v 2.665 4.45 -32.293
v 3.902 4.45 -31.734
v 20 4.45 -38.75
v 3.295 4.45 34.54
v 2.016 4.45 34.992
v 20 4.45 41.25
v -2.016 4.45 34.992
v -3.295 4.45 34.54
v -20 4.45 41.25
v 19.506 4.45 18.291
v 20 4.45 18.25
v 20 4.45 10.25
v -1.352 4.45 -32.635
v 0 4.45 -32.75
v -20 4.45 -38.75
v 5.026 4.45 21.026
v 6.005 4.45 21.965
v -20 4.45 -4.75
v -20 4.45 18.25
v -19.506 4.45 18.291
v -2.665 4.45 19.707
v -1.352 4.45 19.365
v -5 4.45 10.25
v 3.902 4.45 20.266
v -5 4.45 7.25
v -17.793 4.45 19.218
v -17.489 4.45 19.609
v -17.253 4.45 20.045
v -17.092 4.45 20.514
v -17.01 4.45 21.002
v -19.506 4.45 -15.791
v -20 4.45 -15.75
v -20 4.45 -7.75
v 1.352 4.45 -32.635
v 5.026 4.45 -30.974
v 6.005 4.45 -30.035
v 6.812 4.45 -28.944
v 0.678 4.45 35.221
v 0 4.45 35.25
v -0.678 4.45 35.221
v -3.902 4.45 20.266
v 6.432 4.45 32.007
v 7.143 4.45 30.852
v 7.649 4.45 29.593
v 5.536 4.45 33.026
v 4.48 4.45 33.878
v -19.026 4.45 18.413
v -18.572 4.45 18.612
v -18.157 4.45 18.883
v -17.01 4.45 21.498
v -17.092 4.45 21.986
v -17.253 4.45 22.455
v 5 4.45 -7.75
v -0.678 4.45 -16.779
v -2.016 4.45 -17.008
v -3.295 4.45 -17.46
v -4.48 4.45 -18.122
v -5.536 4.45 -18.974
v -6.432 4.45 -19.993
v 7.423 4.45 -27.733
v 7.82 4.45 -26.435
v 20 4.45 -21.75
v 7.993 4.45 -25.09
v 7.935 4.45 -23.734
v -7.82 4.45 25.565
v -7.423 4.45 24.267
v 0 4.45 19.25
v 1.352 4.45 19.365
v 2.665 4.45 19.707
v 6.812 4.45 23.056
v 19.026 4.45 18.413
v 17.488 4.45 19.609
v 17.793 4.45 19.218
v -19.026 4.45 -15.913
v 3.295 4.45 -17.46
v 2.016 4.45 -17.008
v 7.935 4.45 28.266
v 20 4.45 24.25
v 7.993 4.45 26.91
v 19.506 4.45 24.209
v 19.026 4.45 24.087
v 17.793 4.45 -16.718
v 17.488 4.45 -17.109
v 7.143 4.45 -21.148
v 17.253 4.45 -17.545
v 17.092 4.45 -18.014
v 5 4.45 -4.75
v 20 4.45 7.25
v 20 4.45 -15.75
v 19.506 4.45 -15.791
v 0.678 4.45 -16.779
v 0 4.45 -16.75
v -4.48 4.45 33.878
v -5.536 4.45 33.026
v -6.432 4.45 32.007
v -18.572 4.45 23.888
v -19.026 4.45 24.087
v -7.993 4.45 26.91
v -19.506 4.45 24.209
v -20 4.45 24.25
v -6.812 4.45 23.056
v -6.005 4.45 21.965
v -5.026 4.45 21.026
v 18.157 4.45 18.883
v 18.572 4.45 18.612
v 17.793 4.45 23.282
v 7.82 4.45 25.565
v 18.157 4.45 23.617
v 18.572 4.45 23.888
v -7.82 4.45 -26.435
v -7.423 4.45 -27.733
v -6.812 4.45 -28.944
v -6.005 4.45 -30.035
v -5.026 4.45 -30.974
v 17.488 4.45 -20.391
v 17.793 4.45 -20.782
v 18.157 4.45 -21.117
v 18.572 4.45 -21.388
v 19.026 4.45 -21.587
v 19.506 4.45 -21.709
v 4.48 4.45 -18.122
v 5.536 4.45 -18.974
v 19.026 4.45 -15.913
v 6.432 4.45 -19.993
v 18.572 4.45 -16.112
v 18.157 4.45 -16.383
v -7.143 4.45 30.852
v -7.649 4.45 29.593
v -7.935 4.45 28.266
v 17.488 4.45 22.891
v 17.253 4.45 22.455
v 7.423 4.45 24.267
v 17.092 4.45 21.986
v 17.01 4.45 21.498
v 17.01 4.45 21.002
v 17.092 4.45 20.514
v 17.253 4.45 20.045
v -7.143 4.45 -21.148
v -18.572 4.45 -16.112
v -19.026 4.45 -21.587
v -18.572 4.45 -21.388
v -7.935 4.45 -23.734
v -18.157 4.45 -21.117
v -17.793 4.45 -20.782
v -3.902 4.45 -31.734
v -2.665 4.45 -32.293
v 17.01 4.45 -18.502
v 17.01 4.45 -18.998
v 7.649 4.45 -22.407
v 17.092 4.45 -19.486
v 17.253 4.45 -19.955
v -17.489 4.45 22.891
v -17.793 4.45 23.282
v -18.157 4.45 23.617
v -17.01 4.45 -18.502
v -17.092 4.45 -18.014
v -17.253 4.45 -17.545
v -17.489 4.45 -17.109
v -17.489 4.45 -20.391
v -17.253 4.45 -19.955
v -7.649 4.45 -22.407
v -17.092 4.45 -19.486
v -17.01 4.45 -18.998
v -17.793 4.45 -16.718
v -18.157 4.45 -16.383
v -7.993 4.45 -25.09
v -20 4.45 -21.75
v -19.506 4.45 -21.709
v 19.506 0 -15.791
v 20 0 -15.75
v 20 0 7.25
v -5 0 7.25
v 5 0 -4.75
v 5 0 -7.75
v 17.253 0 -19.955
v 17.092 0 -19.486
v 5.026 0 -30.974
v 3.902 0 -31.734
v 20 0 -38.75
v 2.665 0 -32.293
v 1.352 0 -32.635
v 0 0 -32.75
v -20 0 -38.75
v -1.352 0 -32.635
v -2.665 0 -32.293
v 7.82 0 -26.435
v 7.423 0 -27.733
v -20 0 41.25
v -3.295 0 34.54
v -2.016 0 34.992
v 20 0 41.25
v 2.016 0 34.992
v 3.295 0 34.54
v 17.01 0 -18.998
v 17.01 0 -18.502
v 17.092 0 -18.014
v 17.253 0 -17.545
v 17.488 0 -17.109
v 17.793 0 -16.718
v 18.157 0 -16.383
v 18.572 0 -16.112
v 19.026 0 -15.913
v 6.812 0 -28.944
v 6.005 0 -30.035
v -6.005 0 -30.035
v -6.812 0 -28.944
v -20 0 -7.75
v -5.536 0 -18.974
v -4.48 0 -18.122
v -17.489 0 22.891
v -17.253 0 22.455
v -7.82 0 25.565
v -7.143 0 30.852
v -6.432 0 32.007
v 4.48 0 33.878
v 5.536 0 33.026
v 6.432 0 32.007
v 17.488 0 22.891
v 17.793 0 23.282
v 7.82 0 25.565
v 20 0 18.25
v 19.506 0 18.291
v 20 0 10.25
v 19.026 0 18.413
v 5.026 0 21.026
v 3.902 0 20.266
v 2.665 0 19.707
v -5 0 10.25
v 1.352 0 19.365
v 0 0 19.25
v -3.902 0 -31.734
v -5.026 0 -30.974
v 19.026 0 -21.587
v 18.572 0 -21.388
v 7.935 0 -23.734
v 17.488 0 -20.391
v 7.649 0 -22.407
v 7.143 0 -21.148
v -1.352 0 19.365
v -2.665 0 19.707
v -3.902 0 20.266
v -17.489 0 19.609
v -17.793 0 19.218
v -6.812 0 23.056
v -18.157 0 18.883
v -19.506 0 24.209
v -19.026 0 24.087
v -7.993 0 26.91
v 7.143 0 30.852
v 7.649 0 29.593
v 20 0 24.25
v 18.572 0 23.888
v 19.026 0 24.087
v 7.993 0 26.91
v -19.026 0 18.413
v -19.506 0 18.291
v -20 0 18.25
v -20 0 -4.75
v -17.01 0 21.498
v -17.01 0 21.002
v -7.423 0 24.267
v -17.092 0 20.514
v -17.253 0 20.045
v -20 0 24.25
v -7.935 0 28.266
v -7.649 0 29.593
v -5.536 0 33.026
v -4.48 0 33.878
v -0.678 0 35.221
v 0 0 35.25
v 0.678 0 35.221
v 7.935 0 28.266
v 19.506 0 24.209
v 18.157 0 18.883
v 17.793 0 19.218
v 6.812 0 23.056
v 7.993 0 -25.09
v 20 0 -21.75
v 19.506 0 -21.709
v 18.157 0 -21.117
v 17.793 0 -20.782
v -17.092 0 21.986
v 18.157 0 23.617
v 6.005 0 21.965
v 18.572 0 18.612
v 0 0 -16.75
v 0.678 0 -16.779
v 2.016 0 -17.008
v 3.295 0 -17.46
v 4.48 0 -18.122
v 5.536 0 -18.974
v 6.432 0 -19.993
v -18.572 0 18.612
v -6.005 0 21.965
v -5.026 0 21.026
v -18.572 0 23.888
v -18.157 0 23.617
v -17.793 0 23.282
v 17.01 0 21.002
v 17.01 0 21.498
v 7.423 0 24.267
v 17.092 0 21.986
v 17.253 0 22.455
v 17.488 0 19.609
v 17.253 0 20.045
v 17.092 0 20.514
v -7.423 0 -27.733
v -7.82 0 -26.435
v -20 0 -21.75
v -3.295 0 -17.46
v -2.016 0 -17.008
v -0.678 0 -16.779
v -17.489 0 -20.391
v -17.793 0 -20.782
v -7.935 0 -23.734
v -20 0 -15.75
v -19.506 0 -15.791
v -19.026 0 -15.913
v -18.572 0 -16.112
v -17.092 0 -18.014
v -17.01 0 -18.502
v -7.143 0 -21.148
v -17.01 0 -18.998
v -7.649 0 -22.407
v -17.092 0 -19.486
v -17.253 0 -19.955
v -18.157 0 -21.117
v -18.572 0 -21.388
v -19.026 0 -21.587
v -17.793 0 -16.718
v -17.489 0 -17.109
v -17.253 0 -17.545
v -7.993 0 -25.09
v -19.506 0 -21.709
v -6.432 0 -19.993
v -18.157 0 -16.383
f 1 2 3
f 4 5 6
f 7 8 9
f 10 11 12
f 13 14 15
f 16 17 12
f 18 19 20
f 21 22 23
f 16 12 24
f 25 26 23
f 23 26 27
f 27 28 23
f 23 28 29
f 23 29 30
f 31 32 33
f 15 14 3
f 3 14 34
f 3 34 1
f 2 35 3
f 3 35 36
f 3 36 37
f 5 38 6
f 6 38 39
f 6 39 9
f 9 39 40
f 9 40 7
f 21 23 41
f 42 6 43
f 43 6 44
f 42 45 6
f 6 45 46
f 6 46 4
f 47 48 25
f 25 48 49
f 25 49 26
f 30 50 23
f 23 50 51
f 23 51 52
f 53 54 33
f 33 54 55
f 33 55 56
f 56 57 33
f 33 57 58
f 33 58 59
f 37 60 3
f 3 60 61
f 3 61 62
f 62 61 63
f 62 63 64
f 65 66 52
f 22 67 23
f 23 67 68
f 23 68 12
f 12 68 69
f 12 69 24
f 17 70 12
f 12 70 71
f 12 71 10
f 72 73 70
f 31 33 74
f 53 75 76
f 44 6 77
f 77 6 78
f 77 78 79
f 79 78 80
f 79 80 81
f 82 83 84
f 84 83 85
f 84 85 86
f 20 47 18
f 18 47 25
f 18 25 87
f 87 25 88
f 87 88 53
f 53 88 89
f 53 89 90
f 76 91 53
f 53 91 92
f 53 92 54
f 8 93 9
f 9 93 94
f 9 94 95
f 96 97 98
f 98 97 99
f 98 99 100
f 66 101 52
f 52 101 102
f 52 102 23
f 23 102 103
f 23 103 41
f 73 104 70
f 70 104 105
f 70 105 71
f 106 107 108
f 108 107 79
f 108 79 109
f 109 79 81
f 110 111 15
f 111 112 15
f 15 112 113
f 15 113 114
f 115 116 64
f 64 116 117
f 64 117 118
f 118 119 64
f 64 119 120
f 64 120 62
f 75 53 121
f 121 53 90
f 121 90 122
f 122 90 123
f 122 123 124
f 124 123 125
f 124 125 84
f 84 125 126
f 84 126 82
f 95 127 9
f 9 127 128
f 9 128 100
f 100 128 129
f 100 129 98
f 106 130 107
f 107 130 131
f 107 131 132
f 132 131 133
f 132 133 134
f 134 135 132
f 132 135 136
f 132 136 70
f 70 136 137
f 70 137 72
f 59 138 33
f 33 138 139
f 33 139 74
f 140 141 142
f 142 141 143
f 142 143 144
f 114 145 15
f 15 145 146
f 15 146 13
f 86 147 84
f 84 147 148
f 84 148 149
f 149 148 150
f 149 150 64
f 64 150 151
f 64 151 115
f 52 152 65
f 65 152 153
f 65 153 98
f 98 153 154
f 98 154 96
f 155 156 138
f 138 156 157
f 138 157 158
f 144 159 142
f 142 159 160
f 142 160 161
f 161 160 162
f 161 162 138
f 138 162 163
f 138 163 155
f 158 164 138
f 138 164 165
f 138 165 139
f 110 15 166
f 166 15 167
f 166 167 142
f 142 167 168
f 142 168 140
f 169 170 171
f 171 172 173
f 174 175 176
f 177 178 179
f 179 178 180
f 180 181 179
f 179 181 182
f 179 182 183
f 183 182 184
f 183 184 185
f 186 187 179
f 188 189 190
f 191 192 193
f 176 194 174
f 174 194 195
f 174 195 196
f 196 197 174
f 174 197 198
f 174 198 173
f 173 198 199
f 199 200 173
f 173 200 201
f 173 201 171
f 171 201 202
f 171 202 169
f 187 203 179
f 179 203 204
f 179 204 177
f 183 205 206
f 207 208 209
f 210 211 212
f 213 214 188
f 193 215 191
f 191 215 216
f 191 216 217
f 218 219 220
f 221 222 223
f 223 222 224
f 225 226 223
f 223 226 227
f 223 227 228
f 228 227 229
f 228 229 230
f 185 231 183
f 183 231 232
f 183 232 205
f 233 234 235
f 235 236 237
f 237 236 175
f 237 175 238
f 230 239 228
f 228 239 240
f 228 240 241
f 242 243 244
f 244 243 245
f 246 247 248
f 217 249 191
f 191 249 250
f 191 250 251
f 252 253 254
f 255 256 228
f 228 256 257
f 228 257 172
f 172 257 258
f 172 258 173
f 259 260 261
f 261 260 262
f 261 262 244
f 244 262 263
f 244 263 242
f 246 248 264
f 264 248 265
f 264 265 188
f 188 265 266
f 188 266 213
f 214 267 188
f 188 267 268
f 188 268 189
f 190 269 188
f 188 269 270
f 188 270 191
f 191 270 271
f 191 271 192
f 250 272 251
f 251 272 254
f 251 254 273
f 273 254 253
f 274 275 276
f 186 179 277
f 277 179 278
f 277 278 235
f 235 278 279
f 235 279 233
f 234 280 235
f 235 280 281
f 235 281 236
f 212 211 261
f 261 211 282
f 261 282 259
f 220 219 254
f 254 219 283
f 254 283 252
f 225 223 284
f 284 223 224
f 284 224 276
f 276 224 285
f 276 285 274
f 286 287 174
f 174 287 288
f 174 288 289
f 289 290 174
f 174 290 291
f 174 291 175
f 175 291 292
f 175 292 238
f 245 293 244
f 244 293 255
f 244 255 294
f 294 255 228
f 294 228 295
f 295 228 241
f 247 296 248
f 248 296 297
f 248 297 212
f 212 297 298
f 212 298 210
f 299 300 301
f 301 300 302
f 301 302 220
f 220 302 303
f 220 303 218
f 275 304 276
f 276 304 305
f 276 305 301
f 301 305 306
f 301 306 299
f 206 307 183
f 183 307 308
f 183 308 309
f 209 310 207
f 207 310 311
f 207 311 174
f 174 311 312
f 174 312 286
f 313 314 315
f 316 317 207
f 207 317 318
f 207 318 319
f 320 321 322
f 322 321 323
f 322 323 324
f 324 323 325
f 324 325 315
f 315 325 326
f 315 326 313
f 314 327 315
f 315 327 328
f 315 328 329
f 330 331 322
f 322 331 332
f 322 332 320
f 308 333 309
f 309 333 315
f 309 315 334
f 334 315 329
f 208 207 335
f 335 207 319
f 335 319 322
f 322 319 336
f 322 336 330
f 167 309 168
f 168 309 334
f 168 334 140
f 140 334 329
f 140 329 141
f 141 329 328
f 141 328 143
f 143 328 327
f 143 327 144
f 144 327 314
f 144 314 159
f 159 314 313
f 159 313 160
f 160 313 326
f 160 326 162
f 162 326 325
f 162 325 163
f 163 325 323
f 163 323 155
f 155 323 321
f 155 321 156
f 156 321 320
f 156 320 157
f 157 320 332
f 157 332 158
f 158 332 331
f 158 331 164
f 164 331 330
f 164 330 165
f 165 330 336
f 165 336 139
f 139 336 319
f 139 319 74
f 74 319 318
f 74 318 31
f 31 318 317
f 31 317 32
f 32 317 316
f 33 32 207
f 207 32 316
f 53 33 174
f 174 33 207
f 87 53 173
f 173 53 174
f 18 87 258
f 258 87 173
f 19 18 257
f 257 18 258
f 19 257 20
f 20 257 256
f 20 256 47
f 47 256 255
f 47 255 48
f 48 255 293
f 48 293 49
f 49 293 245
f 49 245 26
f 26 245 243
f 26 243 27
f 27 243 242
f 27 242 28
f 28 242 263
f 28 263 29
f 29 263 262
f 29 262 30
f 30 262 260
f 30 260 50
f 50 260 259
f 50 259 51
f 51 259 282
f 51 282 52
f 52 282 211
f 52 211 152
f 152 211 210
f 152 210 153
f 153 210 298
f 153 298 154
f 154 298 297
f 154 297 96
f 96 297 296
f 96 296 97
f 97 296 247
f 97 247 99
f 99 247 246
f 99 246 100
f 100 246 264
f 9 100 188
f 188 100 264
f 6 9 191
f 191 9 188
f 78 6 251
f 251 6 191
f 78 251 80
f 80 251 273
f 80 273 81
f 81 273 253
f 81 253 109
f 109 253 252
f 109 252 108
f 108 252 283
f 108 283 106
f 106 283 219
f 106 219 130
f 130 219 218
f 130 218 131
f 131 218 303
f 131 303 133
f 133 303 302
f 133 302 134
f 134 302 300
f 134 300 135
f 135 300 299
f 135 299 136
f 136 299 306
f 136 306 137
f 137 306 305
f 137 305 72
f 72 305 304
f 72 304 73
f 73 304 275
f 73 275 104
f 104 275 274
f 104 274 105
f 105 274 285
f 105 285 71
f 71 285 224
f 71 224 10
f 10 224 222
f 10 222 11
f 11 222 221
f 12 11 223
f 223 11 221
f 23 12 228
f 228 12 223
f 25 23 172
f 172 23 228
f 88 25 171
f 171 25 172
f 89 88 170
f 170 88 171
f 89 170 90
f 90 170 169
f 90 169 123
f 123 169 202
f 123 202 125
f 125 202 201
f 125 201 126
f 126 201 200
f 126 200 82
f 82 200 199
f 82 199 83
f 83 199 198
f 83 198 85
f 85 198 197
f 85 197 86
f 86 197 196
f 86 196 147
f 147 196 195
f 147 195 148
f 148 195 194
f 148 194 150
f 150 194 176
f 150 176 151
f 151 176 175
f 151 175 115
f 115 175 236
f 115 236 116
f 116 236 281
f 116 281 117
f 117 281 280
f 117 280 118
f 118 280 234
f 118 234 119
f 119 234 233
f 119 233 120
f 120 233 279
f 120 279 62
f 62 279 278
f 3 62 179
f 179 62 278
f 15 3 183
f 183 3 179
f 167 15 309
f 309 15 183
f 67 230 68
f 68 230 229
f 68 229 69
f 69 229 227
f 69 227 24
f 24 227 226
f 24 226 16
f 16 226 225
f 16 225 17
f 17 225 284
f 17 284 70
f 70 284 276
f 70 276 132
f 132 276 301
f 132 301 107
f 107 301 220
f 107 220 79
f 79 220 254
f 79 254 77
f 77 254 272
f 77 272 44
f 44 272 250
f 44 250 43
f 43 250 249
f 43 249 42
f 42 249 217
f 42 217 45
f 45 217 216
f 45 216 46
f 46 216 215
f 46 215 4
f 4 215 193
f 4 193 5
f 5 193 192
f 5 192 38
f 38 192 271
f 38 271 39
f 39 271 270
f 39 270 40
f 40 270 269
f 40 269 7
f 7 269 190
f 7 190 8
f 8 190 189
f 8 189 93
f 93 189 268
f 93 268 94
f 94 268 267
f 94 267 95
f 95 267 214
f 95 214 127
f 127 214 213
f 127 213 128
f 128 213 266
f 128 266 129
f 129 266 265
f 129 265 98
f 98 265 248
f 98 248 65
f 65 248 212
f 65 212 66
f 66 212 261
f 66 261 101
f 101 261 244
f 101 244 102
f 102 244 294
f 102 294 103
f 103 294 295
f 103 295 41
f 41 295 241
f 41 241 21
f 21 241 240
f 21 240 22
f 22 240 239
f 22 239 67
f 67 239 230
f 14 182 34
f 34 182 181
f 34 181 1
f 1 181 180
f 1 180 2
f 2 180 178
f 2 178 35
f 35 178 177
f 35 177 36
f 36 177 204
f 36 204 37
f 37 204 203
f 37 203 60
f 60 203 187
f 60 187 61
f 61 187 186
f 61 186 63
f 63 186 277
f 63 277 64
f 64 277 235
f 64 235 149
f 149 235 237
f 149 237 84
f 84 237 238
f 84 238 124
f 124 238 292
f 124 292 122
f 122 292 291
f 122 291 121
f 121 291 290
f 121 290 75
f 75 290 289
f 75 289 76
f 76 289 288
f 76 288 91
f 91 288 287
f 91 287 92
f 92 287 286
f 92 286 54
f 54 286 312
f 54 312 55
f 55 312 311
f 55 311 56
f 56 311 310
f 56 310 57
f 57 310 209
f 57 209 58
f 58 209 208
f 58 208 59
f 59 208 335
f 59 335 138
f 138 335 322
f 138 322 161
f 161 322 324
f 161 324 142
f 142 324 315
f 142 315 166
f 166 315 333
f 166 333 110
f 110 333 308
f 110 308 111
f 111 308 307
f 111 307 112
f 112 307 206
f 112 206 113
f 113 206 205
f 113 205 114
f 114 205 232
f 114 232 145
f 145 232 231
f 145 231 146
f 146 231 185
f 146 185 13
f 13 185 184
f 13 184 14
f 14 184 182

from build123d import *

# Parameters (mm, degrees)
CROQUIS1_R              = 8
SALIENTE_EXTRUIR1_DEPTH = 4.45


with BuildPart() as part:
    # Croquis1 → Saliente-Extruir1 (new body)
    with BuildSketch(Plane(origin=(0, 0, 0), x_dir=(1, 0, 0), z_dir=(0, 1, 0))):
        with BuildLine():
            Line((-20, -41.25), (20, -41.25))
            Line((20, -41.25), (20, -24.25))
            ThreePointArc((20, -24.25), (17, -21.25), (20, -18.25))
            Line((20, -18.25), (20, -10.25))
            Line((20, -10.25), (-5, -10.25))
            Line((-5, -10.25), (-5, -7.25))
            Line((-5, -7.25), (20, -7.25))
            Line((20, -7.25), (20, 15.75))
            ThreePointArc((20, 15.75), (17, 18.75), (20, 21.75))
            Line((20, 21.75), (20, 38.75))
            Line((20, 38.75), (-20, 38.75))
            Line((-20, 38.75), (-20, 21.75))
            ThreePointArc((-20, 21.75), (-17, 18.75), (-20, 15.75))
            Line((-20, 15.75), (-20, 7.75))
            Line((-20, 7.75), (5, 7.75))
            Line((5, 7.75), (5, 4.75))
            Line((5, 4.75), (-20, 4.75))
            Line((-20, 4.75), (-20, -18.25))
            ThreePointArc((-20, -18.25), (-17, -21.25), (-20, -24.25))
            Line((-20, -24.25), (-20, -41.25))
        make_face()
        with Locations((0, -27.25)):
            Circle(CROQUIS1_R, mode=Mode.SUBTRACT)
        with Locations((0, 24.75)):
            Circle(CROQUIS1_R, mode=Mode.SUBTRACT)
    extrude(amount=SALIENTE_EXTRUIR1_DEPTH)


solid = part.part
